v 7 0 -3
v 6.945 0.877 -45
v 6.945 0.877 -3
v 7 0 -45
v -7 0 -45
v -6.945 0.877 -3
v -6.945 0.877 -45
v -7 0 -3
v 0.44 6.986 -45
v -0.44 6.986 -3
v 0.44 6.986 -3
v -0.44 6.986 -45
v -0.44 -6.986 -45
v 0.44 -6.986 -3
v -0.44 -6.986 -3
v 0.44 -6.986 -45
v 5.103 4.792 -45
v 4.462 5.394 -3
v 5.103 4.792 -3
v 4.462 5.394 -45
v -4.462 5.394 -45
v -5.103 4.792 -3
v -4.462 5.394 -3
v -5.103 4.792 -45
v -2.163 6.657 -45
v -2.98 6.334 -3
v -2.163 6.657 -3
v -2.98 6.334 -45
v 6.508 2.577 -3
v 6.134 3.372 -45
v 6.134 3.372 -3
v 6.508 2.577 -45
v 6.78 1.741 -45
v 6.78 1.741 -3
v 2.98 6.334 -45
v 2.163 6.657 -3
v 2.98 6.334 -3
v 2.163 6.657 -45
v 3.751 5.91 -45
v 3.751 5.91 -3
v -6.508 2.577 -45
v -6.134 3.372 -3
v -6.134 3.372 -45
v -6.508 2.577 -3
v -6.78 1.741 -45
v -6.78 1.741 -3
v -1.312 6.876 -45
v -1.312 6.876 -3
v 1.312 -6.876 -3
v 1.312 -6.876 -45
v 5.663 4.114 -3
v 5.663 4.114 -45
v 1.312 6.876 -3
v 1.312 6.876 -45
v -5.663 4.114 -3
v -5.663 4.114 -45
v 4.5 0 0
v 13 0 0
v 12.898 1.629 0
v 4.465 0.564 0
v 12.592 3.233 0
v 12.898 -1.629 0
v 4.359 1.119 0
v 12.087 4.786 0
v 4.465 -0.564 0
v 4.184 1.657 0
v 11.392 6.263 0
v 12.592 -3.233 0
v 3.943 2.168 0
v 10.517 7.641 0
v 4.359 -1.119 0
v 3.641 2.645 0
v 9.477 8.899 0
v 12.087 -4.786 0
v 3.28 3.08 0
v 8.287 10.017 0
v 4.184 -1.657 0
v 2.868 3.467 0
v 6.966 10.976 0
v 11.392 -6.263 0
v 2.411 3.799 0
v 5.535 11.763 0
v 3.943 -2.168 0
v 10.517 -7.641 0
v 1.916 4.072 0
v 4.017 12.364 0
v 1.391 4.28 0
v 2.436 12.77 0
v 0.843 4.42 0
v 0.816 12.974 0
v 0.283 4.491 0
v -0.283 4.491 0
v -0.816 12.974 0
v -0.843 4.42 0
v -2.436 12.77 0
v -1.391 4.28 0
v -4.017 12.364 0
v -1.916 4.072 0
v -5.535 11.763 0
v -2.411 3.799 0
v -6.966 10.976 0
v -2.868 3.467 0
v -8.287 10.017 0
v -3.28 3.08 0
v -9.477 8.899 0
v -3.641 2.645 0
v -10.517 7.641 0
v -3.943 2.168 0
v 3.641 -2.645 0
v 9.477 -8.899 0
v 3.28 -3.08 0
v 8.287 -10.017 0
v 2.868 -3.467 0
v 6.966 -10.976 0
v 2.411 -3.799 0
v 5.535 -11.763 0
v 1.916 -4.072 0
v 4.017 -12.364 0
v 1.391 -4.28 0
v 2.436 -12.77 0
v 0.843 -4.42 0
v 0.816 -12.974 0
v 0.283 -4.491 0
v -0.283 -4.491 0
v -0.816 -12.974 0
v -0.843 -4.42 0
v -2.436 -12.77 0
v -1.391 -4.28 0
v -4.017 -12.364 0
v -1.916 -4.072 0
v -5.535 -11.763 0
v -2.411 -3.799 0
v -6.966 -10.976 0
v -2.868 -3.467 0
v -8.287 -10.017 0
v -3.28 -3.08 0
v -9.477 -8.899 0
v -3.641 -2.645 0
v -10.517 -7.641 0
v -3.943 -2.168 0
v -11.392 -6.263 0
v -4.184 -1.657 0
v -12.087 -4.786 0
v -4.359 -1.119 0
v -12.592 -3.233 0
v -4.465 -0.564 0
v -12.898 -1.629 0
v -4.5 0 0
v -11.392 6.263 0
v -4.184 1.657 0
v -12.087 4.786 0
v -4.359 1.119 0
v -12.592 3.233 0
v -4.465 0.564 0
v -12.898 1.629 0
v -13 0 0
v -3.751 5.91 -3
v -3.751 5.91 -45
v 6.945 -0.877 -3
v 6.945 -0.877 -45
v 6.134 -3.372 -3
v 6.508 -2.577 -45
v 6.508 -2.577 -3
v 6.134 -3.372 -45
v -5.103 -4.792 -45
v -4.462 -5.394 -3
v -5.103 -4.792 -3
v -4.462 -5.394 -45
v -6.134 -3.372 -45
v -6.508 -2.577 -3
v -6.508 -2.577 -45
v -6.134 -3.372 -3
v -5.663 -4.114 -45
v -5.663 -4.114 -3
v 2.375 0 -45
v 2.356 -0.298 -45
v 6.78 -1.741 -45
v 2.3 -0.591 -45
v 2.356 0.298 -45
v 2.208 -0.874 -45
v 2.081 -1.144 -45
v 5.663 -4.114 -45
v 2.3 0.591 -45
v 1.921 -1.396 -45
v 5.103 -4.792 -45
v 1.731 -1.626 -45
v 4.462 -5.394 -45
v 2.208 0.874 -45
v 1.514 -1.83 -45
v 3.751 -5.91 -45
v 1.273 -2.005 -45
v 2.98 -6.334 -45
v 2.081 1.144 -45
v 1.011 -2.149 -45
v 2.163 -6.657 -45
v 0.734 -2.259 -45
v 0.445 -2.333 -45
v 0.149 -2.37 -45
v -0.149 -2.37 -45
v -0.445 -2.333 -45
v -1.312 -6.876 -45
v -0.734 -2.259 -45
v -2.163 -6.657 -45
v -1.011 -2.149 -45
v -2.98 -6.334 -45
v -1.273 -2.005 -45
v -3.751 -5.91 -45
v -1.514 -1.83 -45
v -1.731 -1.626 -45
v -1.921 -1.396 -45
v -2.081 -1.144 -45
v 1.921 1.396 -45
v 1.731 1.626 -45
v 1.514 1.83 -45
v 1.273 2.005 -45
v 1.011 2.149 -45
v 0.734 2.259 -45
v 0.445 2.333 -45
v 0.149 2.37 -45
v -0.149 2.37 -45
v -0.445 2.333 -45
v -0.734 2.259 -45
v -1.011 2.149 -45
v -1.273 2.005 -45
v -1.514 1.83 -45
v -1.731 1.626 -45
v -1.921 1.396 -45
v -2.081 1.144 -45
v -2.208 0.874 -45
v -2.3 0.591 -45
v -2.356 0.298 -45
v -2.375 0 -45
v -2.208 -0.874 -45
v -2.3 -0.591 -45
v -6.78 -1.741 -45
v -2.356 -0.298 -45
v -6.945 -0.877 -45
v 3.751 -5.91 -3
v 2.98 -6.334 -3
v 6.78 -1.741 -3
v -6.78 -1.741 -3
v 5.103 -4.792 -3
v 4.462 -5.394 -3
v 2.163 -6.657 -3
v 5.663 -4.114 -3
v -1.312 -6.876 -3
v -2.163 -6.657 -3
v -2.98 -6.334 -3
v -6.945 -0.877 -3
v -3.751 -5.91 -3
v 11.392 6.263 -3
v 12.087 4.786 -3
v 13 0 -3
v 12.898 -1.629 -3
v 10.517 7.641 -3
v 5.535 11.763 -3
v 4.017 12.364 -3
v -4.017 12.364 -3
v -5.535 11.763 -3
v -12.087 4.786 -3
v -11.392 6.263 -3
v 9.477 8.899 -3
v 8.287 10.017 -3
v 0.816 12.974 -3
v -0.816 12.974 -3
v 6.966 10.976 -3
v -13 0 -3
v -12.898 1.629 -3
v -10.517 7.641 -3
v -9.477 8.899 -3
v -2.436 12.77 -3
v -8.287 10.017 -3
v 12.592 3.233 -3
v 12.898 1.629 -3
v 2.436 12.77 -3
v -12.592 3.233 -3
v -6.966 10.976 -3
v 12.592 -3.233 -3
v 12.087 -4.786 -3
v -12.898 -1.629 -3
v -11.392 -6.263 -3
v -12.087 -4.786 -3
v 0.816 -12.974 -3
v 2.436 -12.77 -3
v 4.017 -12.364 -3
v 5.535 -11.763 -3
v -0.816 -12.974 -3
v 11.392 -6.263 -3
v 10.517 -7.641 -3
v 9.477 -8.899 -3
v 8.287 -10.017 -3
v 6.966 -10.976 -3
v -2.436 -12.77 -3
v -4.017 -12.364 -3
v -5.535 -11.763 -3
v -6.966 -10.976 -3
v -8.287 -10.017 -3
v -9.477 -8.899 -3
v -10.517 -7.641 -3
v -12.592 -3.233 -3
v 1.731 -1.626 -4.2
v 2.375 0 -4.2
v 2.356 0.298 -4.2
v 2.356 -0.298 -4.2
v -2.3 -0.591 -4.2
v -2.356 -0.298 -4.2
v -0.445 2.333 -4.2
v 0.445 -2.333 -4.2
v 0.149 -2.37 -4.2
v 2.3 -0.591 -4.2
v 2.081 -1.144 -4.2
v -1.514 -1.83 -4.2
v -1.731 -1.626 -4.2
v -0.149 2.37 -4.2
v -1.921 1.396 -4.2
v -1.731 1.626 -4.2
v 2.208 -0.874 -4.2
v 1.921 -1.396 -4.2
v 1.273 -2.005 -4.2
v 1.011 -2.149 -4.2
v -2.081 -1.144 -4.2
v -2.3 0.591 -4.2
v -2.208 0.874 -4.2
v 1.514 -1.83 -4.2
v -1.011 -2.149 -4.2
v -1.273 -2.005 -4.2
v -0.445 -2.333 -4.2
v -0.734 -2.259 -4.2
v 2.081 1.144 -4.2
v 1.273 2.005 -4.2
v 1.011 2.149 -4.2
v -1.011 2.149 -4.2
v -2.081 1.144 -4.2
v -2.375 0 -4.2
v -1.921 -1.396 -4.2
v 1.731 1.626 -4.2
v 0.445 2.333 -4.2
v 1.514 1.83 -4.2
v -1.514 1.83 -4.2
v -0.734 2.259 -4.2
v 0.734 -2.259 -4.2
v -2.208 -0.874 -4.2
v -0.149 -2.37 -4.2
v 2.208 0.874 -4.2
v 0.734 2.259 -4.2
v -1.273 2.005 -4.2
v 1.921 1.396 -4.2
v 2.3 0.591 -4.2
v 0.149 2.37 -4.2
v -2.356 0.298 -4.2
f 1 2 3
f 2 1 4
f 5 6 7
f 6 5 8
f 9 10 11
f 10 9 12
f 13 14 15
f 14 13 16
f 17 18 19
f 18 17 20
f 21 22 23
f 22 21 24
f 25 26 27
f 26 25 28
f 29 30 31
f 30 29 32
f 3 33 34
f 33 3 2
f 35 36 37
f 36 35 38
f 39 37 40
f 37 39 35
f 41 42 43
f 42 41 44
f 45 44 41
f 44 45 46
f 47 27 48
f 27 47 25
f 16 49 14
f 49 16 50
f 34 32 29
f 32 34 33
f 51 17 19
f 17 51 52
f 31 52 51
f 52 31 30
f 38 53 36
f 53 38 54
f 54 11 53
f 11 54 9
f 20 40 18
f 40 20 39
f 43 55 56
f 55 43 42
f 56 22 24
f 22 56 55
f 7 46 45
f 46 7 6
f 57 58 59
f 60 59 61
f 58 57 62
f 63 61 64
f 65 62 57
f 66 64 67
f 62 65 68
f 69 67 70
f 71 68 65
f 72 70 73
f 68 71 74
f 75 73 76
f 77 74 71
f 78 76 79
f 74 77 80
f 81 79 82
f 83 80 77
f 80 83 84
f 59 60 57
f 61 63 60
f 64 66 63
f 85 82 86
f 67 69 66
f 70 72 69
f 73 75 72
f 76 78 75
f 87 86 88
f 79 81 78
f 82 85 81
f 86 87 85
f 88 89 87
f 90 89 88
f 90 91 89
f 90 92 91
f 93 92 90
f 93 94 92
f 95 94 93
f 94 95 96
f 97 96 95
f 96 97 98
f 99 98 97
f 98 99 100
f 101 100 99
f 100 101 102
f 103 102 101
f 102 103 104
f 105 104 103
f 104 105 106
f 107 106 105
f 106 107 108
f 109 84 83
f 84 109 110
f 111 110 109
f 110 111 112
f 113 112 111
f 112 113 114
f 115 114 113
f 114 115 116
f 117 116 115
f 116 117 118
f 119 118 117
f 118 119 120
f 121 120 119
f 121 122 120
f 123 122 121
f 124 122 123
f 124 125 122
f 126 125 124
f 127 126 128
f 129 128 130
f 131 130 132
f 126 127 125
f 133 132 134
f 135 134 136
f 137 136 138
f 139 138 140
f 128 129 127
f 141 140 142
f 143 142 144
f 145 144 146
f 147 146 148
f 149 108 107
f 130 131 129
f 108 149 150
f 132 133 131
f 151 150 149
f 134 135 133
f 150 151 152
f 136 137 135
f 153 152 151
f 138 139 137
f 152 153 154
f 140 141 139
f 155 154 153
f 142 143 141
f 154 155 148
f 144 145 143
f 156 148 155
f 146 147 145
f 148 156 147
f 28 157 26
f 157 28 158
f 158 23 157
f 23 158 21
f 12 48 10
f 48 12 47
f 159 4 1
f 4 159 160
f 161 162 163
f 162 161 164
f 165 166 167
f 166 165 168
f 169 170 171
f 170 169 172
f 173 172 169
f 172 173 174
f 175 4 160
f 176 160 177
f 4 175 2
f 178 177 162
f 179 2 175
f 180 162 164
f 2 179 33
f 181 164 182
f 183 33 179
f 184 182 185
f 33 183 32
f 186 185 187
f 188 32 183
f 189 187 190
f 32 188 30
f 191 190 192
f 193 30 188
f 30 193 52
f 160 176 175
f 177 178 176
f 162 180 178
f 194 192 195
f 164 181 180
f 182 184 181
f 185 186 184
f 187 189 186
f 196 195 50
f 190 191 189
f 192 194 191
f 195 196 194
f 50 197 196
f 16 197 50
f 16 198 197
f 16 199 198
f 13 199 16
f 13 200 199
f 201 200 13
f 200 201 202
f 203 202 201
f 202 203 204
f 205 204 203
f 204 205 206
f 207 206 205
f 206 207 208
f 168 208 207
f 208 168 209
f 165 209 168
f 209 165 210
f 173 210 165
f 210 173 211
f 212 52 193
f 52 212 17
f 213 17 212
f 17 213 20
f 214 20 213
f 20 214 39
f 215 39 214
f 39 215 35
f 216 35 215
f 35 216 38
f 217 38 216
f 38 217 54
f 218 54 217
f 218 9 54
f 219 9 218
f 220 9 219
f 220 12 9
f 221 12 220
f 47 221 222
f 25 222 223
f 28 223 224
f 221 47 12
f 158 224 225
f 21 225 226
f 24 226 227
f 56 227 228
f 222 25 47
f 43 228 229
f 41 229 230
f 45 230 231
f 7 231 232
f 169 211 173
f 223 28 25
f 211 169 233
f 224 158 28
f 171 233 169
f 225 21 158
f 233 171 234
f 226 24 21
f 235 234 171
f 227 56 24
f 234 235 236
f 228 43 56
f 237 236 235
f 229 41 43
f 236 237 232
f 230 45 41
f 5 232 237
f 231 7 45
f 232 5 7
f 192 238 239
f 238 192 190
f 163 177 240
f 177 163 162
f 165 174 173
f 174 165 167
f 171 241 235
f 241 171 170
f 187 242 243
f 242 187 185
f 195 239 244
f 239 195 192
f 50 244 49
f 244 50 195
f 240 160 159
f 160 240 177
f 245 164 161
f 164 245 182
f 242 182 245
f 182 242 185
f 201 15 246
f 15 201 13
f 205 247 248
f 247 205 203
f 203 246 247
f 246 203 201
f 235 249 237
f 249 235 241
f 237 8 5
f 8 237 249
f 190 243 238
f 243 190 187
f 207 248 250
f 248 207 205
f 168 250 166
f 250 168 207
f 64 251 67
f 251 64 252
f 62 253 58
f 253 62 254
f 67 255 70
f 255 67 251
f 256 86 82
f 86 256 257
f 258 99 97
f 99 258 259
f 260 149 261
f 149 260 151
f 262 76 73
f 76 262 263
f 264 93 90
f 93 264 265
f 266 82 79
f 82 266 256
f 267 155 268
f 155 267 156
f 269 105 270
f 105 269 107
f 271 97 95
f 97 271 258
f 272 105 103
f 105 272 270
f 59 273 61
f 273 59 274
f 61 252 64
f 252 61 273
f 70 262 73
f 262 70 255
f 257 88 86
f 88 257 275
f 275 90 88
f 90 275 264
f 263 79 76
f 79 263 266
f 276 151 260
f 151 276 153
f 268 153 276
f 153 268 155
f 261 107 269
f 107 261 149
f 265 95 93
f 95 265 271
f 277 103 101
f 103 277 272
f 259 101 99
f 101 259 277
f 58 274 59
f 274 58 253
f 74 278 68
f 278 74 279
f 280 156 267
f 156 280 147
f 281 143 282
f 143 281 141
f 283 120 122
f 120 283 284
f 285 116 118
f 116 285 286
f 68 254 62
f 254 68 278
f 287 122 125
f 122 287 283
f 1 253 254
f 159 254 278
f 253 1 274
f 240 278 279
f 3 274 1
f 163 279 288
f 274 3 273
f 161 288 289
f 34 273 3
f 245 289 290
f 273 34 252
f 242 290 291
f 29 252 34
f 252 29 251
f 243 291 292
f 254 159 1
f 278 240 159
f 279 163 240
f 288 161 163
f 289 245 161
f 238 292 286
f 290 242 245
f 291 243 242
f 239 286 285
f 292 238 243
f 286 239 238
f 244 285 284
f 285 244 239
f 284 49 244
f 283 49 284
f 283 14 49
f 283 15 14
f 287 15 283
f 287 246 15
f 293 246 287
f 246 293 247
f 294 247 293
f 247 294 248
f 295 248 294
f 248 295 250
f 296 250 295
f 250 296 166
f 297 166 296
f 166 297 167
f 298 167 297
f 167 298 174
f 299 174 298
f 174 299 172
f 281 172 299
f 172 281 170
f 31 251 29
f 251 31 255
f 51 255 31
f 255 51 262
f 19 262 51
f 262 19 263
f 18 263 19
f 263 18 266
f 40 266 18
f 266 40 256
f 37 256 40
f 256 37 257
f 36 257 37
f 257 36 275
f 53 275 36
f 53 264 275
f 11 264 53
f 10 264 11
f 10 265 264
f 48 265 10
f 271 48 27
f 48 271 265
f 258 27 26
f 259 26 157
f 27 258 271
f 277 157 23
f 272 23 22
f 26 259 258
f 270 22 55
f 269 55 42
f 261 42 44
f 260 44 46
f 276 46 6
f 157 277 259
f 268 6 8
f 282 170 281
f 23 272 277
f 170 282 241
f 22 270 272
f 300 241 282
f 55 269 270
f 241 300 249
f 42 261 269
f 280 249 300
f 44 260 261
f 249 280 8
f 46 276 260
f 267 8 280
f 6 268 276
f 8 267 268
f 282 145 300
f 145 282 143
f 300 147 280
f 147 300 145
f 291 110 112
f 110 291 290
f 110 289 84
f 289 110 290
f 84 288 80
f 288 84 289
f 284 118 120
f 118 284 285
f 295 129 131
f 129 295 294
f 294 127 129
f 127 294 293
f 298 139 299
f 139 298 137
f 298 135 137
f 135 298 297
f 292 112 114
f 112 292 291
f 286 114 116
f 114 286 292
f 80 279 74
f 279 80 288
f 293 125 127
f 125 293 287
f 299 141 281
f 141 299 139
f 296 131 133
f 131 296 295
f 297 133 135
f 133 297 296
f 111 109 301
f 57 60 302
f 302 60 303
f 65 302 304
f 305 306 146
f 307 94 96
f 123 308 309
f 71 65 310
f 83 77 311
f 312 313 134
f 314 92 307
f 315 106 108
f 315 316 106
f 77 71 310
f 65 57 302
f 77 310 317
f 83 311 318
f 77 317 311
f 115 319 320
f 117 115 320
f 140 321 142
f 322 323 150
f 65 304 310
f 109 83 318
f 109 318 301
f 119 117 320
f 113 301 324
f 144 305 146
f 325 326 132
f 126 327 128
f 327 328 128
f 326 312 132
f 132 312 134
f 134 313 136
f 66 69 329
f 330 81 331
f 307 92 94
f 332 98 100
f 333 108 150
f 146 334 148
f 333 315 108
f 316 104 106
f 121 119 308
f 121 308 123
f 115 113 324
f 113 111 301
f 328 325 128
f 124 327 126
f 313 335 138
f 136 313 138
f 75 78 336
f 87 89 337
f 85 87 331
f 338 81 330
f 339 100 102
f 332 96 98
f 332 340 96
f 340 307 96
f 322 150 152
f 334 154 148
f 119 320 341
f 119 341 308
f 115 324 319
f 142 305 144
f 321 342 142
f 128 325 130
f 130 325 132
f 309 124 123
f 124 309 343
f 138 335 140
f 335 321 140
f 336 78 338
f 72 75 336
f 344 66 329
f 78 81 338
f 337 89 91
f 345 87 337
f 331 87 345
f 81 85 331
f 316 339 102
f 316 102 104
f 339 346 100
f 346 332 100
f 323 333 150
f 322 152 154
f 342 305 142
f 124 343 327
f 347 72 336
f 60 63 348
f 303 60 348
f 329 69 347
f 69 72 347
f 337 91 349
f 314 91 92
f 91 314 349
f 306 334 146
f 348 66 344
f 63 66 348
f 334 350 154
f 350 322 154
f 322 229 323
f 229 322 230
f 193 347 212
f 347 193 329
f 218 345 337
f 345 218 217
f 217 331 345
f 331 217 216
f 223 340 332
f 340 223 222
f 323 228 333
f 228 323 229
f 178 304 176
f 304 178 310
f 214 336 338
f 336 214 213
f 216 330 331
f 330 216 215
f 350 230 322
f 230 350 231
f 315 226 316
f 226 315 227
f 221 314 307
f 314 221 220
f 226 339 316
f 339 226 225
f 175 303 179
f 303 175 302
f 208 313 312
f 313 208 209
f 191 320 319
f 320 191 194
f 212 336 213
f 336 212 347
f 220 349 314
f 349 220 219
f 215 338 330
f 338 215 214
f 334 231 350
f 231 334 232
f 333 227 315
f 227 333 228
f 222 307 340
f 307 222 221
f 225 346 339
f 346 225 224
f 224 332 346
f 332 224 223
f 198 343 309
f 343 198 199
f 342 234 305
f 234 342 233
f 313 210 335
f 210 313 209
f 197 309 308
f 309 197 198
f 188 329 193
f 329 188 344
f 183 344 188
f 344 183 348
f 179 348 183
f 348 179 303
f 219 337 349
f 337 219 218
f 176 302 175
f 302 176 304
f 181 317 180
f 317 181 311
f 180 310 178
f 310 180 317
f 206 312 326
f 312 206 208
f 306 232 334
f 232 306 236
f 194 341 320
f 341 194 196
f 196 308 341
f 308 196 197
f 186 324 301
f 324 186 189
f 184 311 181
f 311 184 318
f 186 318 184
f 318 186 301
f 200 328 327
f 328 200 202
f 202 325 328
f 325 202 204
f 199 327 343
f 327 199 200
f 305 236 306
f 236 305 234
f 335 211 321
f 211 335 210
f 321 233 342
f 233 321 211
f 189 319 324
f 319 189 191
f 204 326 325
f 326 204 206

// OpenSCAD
$fn = 50;


difference() {
	union() {
		translate(v = [0, 0, -45.0000000000]) {
			cylinder(h = 45, r = 7.0000000000);
		}
		translate(v = [0, 0, -3.0000000000]) {
			cylinder(h = 3, r = 13.0000000000);
		}
	}
	union() {
		translate(v = [0, 0, 0]) {
			rotate(a = [0, 0, 0]) {
				difference() {
					union() {
						#translate(v = [0, 0, -45.0000000000]) {
							cylinder(h = 45, r = 2.2500000000);
						}
						#translate(v = [0, 0, -4.2000000000]) {
							cylinder(h = 4.2000000000, r1 = 2.3750000000, r2 = 4.5000000000);
						}
						#translate(v = [0, 0, -45.0000000000]) {
							cylinder(h = 45, r = 2.3750000000);
						}
						#translate(v = [0, 0, -45.0000000000]) {
							cylinder(h = 45, r = 2.2500000000);
						}
					}
					union();
				}
			}
		}
	}
}
